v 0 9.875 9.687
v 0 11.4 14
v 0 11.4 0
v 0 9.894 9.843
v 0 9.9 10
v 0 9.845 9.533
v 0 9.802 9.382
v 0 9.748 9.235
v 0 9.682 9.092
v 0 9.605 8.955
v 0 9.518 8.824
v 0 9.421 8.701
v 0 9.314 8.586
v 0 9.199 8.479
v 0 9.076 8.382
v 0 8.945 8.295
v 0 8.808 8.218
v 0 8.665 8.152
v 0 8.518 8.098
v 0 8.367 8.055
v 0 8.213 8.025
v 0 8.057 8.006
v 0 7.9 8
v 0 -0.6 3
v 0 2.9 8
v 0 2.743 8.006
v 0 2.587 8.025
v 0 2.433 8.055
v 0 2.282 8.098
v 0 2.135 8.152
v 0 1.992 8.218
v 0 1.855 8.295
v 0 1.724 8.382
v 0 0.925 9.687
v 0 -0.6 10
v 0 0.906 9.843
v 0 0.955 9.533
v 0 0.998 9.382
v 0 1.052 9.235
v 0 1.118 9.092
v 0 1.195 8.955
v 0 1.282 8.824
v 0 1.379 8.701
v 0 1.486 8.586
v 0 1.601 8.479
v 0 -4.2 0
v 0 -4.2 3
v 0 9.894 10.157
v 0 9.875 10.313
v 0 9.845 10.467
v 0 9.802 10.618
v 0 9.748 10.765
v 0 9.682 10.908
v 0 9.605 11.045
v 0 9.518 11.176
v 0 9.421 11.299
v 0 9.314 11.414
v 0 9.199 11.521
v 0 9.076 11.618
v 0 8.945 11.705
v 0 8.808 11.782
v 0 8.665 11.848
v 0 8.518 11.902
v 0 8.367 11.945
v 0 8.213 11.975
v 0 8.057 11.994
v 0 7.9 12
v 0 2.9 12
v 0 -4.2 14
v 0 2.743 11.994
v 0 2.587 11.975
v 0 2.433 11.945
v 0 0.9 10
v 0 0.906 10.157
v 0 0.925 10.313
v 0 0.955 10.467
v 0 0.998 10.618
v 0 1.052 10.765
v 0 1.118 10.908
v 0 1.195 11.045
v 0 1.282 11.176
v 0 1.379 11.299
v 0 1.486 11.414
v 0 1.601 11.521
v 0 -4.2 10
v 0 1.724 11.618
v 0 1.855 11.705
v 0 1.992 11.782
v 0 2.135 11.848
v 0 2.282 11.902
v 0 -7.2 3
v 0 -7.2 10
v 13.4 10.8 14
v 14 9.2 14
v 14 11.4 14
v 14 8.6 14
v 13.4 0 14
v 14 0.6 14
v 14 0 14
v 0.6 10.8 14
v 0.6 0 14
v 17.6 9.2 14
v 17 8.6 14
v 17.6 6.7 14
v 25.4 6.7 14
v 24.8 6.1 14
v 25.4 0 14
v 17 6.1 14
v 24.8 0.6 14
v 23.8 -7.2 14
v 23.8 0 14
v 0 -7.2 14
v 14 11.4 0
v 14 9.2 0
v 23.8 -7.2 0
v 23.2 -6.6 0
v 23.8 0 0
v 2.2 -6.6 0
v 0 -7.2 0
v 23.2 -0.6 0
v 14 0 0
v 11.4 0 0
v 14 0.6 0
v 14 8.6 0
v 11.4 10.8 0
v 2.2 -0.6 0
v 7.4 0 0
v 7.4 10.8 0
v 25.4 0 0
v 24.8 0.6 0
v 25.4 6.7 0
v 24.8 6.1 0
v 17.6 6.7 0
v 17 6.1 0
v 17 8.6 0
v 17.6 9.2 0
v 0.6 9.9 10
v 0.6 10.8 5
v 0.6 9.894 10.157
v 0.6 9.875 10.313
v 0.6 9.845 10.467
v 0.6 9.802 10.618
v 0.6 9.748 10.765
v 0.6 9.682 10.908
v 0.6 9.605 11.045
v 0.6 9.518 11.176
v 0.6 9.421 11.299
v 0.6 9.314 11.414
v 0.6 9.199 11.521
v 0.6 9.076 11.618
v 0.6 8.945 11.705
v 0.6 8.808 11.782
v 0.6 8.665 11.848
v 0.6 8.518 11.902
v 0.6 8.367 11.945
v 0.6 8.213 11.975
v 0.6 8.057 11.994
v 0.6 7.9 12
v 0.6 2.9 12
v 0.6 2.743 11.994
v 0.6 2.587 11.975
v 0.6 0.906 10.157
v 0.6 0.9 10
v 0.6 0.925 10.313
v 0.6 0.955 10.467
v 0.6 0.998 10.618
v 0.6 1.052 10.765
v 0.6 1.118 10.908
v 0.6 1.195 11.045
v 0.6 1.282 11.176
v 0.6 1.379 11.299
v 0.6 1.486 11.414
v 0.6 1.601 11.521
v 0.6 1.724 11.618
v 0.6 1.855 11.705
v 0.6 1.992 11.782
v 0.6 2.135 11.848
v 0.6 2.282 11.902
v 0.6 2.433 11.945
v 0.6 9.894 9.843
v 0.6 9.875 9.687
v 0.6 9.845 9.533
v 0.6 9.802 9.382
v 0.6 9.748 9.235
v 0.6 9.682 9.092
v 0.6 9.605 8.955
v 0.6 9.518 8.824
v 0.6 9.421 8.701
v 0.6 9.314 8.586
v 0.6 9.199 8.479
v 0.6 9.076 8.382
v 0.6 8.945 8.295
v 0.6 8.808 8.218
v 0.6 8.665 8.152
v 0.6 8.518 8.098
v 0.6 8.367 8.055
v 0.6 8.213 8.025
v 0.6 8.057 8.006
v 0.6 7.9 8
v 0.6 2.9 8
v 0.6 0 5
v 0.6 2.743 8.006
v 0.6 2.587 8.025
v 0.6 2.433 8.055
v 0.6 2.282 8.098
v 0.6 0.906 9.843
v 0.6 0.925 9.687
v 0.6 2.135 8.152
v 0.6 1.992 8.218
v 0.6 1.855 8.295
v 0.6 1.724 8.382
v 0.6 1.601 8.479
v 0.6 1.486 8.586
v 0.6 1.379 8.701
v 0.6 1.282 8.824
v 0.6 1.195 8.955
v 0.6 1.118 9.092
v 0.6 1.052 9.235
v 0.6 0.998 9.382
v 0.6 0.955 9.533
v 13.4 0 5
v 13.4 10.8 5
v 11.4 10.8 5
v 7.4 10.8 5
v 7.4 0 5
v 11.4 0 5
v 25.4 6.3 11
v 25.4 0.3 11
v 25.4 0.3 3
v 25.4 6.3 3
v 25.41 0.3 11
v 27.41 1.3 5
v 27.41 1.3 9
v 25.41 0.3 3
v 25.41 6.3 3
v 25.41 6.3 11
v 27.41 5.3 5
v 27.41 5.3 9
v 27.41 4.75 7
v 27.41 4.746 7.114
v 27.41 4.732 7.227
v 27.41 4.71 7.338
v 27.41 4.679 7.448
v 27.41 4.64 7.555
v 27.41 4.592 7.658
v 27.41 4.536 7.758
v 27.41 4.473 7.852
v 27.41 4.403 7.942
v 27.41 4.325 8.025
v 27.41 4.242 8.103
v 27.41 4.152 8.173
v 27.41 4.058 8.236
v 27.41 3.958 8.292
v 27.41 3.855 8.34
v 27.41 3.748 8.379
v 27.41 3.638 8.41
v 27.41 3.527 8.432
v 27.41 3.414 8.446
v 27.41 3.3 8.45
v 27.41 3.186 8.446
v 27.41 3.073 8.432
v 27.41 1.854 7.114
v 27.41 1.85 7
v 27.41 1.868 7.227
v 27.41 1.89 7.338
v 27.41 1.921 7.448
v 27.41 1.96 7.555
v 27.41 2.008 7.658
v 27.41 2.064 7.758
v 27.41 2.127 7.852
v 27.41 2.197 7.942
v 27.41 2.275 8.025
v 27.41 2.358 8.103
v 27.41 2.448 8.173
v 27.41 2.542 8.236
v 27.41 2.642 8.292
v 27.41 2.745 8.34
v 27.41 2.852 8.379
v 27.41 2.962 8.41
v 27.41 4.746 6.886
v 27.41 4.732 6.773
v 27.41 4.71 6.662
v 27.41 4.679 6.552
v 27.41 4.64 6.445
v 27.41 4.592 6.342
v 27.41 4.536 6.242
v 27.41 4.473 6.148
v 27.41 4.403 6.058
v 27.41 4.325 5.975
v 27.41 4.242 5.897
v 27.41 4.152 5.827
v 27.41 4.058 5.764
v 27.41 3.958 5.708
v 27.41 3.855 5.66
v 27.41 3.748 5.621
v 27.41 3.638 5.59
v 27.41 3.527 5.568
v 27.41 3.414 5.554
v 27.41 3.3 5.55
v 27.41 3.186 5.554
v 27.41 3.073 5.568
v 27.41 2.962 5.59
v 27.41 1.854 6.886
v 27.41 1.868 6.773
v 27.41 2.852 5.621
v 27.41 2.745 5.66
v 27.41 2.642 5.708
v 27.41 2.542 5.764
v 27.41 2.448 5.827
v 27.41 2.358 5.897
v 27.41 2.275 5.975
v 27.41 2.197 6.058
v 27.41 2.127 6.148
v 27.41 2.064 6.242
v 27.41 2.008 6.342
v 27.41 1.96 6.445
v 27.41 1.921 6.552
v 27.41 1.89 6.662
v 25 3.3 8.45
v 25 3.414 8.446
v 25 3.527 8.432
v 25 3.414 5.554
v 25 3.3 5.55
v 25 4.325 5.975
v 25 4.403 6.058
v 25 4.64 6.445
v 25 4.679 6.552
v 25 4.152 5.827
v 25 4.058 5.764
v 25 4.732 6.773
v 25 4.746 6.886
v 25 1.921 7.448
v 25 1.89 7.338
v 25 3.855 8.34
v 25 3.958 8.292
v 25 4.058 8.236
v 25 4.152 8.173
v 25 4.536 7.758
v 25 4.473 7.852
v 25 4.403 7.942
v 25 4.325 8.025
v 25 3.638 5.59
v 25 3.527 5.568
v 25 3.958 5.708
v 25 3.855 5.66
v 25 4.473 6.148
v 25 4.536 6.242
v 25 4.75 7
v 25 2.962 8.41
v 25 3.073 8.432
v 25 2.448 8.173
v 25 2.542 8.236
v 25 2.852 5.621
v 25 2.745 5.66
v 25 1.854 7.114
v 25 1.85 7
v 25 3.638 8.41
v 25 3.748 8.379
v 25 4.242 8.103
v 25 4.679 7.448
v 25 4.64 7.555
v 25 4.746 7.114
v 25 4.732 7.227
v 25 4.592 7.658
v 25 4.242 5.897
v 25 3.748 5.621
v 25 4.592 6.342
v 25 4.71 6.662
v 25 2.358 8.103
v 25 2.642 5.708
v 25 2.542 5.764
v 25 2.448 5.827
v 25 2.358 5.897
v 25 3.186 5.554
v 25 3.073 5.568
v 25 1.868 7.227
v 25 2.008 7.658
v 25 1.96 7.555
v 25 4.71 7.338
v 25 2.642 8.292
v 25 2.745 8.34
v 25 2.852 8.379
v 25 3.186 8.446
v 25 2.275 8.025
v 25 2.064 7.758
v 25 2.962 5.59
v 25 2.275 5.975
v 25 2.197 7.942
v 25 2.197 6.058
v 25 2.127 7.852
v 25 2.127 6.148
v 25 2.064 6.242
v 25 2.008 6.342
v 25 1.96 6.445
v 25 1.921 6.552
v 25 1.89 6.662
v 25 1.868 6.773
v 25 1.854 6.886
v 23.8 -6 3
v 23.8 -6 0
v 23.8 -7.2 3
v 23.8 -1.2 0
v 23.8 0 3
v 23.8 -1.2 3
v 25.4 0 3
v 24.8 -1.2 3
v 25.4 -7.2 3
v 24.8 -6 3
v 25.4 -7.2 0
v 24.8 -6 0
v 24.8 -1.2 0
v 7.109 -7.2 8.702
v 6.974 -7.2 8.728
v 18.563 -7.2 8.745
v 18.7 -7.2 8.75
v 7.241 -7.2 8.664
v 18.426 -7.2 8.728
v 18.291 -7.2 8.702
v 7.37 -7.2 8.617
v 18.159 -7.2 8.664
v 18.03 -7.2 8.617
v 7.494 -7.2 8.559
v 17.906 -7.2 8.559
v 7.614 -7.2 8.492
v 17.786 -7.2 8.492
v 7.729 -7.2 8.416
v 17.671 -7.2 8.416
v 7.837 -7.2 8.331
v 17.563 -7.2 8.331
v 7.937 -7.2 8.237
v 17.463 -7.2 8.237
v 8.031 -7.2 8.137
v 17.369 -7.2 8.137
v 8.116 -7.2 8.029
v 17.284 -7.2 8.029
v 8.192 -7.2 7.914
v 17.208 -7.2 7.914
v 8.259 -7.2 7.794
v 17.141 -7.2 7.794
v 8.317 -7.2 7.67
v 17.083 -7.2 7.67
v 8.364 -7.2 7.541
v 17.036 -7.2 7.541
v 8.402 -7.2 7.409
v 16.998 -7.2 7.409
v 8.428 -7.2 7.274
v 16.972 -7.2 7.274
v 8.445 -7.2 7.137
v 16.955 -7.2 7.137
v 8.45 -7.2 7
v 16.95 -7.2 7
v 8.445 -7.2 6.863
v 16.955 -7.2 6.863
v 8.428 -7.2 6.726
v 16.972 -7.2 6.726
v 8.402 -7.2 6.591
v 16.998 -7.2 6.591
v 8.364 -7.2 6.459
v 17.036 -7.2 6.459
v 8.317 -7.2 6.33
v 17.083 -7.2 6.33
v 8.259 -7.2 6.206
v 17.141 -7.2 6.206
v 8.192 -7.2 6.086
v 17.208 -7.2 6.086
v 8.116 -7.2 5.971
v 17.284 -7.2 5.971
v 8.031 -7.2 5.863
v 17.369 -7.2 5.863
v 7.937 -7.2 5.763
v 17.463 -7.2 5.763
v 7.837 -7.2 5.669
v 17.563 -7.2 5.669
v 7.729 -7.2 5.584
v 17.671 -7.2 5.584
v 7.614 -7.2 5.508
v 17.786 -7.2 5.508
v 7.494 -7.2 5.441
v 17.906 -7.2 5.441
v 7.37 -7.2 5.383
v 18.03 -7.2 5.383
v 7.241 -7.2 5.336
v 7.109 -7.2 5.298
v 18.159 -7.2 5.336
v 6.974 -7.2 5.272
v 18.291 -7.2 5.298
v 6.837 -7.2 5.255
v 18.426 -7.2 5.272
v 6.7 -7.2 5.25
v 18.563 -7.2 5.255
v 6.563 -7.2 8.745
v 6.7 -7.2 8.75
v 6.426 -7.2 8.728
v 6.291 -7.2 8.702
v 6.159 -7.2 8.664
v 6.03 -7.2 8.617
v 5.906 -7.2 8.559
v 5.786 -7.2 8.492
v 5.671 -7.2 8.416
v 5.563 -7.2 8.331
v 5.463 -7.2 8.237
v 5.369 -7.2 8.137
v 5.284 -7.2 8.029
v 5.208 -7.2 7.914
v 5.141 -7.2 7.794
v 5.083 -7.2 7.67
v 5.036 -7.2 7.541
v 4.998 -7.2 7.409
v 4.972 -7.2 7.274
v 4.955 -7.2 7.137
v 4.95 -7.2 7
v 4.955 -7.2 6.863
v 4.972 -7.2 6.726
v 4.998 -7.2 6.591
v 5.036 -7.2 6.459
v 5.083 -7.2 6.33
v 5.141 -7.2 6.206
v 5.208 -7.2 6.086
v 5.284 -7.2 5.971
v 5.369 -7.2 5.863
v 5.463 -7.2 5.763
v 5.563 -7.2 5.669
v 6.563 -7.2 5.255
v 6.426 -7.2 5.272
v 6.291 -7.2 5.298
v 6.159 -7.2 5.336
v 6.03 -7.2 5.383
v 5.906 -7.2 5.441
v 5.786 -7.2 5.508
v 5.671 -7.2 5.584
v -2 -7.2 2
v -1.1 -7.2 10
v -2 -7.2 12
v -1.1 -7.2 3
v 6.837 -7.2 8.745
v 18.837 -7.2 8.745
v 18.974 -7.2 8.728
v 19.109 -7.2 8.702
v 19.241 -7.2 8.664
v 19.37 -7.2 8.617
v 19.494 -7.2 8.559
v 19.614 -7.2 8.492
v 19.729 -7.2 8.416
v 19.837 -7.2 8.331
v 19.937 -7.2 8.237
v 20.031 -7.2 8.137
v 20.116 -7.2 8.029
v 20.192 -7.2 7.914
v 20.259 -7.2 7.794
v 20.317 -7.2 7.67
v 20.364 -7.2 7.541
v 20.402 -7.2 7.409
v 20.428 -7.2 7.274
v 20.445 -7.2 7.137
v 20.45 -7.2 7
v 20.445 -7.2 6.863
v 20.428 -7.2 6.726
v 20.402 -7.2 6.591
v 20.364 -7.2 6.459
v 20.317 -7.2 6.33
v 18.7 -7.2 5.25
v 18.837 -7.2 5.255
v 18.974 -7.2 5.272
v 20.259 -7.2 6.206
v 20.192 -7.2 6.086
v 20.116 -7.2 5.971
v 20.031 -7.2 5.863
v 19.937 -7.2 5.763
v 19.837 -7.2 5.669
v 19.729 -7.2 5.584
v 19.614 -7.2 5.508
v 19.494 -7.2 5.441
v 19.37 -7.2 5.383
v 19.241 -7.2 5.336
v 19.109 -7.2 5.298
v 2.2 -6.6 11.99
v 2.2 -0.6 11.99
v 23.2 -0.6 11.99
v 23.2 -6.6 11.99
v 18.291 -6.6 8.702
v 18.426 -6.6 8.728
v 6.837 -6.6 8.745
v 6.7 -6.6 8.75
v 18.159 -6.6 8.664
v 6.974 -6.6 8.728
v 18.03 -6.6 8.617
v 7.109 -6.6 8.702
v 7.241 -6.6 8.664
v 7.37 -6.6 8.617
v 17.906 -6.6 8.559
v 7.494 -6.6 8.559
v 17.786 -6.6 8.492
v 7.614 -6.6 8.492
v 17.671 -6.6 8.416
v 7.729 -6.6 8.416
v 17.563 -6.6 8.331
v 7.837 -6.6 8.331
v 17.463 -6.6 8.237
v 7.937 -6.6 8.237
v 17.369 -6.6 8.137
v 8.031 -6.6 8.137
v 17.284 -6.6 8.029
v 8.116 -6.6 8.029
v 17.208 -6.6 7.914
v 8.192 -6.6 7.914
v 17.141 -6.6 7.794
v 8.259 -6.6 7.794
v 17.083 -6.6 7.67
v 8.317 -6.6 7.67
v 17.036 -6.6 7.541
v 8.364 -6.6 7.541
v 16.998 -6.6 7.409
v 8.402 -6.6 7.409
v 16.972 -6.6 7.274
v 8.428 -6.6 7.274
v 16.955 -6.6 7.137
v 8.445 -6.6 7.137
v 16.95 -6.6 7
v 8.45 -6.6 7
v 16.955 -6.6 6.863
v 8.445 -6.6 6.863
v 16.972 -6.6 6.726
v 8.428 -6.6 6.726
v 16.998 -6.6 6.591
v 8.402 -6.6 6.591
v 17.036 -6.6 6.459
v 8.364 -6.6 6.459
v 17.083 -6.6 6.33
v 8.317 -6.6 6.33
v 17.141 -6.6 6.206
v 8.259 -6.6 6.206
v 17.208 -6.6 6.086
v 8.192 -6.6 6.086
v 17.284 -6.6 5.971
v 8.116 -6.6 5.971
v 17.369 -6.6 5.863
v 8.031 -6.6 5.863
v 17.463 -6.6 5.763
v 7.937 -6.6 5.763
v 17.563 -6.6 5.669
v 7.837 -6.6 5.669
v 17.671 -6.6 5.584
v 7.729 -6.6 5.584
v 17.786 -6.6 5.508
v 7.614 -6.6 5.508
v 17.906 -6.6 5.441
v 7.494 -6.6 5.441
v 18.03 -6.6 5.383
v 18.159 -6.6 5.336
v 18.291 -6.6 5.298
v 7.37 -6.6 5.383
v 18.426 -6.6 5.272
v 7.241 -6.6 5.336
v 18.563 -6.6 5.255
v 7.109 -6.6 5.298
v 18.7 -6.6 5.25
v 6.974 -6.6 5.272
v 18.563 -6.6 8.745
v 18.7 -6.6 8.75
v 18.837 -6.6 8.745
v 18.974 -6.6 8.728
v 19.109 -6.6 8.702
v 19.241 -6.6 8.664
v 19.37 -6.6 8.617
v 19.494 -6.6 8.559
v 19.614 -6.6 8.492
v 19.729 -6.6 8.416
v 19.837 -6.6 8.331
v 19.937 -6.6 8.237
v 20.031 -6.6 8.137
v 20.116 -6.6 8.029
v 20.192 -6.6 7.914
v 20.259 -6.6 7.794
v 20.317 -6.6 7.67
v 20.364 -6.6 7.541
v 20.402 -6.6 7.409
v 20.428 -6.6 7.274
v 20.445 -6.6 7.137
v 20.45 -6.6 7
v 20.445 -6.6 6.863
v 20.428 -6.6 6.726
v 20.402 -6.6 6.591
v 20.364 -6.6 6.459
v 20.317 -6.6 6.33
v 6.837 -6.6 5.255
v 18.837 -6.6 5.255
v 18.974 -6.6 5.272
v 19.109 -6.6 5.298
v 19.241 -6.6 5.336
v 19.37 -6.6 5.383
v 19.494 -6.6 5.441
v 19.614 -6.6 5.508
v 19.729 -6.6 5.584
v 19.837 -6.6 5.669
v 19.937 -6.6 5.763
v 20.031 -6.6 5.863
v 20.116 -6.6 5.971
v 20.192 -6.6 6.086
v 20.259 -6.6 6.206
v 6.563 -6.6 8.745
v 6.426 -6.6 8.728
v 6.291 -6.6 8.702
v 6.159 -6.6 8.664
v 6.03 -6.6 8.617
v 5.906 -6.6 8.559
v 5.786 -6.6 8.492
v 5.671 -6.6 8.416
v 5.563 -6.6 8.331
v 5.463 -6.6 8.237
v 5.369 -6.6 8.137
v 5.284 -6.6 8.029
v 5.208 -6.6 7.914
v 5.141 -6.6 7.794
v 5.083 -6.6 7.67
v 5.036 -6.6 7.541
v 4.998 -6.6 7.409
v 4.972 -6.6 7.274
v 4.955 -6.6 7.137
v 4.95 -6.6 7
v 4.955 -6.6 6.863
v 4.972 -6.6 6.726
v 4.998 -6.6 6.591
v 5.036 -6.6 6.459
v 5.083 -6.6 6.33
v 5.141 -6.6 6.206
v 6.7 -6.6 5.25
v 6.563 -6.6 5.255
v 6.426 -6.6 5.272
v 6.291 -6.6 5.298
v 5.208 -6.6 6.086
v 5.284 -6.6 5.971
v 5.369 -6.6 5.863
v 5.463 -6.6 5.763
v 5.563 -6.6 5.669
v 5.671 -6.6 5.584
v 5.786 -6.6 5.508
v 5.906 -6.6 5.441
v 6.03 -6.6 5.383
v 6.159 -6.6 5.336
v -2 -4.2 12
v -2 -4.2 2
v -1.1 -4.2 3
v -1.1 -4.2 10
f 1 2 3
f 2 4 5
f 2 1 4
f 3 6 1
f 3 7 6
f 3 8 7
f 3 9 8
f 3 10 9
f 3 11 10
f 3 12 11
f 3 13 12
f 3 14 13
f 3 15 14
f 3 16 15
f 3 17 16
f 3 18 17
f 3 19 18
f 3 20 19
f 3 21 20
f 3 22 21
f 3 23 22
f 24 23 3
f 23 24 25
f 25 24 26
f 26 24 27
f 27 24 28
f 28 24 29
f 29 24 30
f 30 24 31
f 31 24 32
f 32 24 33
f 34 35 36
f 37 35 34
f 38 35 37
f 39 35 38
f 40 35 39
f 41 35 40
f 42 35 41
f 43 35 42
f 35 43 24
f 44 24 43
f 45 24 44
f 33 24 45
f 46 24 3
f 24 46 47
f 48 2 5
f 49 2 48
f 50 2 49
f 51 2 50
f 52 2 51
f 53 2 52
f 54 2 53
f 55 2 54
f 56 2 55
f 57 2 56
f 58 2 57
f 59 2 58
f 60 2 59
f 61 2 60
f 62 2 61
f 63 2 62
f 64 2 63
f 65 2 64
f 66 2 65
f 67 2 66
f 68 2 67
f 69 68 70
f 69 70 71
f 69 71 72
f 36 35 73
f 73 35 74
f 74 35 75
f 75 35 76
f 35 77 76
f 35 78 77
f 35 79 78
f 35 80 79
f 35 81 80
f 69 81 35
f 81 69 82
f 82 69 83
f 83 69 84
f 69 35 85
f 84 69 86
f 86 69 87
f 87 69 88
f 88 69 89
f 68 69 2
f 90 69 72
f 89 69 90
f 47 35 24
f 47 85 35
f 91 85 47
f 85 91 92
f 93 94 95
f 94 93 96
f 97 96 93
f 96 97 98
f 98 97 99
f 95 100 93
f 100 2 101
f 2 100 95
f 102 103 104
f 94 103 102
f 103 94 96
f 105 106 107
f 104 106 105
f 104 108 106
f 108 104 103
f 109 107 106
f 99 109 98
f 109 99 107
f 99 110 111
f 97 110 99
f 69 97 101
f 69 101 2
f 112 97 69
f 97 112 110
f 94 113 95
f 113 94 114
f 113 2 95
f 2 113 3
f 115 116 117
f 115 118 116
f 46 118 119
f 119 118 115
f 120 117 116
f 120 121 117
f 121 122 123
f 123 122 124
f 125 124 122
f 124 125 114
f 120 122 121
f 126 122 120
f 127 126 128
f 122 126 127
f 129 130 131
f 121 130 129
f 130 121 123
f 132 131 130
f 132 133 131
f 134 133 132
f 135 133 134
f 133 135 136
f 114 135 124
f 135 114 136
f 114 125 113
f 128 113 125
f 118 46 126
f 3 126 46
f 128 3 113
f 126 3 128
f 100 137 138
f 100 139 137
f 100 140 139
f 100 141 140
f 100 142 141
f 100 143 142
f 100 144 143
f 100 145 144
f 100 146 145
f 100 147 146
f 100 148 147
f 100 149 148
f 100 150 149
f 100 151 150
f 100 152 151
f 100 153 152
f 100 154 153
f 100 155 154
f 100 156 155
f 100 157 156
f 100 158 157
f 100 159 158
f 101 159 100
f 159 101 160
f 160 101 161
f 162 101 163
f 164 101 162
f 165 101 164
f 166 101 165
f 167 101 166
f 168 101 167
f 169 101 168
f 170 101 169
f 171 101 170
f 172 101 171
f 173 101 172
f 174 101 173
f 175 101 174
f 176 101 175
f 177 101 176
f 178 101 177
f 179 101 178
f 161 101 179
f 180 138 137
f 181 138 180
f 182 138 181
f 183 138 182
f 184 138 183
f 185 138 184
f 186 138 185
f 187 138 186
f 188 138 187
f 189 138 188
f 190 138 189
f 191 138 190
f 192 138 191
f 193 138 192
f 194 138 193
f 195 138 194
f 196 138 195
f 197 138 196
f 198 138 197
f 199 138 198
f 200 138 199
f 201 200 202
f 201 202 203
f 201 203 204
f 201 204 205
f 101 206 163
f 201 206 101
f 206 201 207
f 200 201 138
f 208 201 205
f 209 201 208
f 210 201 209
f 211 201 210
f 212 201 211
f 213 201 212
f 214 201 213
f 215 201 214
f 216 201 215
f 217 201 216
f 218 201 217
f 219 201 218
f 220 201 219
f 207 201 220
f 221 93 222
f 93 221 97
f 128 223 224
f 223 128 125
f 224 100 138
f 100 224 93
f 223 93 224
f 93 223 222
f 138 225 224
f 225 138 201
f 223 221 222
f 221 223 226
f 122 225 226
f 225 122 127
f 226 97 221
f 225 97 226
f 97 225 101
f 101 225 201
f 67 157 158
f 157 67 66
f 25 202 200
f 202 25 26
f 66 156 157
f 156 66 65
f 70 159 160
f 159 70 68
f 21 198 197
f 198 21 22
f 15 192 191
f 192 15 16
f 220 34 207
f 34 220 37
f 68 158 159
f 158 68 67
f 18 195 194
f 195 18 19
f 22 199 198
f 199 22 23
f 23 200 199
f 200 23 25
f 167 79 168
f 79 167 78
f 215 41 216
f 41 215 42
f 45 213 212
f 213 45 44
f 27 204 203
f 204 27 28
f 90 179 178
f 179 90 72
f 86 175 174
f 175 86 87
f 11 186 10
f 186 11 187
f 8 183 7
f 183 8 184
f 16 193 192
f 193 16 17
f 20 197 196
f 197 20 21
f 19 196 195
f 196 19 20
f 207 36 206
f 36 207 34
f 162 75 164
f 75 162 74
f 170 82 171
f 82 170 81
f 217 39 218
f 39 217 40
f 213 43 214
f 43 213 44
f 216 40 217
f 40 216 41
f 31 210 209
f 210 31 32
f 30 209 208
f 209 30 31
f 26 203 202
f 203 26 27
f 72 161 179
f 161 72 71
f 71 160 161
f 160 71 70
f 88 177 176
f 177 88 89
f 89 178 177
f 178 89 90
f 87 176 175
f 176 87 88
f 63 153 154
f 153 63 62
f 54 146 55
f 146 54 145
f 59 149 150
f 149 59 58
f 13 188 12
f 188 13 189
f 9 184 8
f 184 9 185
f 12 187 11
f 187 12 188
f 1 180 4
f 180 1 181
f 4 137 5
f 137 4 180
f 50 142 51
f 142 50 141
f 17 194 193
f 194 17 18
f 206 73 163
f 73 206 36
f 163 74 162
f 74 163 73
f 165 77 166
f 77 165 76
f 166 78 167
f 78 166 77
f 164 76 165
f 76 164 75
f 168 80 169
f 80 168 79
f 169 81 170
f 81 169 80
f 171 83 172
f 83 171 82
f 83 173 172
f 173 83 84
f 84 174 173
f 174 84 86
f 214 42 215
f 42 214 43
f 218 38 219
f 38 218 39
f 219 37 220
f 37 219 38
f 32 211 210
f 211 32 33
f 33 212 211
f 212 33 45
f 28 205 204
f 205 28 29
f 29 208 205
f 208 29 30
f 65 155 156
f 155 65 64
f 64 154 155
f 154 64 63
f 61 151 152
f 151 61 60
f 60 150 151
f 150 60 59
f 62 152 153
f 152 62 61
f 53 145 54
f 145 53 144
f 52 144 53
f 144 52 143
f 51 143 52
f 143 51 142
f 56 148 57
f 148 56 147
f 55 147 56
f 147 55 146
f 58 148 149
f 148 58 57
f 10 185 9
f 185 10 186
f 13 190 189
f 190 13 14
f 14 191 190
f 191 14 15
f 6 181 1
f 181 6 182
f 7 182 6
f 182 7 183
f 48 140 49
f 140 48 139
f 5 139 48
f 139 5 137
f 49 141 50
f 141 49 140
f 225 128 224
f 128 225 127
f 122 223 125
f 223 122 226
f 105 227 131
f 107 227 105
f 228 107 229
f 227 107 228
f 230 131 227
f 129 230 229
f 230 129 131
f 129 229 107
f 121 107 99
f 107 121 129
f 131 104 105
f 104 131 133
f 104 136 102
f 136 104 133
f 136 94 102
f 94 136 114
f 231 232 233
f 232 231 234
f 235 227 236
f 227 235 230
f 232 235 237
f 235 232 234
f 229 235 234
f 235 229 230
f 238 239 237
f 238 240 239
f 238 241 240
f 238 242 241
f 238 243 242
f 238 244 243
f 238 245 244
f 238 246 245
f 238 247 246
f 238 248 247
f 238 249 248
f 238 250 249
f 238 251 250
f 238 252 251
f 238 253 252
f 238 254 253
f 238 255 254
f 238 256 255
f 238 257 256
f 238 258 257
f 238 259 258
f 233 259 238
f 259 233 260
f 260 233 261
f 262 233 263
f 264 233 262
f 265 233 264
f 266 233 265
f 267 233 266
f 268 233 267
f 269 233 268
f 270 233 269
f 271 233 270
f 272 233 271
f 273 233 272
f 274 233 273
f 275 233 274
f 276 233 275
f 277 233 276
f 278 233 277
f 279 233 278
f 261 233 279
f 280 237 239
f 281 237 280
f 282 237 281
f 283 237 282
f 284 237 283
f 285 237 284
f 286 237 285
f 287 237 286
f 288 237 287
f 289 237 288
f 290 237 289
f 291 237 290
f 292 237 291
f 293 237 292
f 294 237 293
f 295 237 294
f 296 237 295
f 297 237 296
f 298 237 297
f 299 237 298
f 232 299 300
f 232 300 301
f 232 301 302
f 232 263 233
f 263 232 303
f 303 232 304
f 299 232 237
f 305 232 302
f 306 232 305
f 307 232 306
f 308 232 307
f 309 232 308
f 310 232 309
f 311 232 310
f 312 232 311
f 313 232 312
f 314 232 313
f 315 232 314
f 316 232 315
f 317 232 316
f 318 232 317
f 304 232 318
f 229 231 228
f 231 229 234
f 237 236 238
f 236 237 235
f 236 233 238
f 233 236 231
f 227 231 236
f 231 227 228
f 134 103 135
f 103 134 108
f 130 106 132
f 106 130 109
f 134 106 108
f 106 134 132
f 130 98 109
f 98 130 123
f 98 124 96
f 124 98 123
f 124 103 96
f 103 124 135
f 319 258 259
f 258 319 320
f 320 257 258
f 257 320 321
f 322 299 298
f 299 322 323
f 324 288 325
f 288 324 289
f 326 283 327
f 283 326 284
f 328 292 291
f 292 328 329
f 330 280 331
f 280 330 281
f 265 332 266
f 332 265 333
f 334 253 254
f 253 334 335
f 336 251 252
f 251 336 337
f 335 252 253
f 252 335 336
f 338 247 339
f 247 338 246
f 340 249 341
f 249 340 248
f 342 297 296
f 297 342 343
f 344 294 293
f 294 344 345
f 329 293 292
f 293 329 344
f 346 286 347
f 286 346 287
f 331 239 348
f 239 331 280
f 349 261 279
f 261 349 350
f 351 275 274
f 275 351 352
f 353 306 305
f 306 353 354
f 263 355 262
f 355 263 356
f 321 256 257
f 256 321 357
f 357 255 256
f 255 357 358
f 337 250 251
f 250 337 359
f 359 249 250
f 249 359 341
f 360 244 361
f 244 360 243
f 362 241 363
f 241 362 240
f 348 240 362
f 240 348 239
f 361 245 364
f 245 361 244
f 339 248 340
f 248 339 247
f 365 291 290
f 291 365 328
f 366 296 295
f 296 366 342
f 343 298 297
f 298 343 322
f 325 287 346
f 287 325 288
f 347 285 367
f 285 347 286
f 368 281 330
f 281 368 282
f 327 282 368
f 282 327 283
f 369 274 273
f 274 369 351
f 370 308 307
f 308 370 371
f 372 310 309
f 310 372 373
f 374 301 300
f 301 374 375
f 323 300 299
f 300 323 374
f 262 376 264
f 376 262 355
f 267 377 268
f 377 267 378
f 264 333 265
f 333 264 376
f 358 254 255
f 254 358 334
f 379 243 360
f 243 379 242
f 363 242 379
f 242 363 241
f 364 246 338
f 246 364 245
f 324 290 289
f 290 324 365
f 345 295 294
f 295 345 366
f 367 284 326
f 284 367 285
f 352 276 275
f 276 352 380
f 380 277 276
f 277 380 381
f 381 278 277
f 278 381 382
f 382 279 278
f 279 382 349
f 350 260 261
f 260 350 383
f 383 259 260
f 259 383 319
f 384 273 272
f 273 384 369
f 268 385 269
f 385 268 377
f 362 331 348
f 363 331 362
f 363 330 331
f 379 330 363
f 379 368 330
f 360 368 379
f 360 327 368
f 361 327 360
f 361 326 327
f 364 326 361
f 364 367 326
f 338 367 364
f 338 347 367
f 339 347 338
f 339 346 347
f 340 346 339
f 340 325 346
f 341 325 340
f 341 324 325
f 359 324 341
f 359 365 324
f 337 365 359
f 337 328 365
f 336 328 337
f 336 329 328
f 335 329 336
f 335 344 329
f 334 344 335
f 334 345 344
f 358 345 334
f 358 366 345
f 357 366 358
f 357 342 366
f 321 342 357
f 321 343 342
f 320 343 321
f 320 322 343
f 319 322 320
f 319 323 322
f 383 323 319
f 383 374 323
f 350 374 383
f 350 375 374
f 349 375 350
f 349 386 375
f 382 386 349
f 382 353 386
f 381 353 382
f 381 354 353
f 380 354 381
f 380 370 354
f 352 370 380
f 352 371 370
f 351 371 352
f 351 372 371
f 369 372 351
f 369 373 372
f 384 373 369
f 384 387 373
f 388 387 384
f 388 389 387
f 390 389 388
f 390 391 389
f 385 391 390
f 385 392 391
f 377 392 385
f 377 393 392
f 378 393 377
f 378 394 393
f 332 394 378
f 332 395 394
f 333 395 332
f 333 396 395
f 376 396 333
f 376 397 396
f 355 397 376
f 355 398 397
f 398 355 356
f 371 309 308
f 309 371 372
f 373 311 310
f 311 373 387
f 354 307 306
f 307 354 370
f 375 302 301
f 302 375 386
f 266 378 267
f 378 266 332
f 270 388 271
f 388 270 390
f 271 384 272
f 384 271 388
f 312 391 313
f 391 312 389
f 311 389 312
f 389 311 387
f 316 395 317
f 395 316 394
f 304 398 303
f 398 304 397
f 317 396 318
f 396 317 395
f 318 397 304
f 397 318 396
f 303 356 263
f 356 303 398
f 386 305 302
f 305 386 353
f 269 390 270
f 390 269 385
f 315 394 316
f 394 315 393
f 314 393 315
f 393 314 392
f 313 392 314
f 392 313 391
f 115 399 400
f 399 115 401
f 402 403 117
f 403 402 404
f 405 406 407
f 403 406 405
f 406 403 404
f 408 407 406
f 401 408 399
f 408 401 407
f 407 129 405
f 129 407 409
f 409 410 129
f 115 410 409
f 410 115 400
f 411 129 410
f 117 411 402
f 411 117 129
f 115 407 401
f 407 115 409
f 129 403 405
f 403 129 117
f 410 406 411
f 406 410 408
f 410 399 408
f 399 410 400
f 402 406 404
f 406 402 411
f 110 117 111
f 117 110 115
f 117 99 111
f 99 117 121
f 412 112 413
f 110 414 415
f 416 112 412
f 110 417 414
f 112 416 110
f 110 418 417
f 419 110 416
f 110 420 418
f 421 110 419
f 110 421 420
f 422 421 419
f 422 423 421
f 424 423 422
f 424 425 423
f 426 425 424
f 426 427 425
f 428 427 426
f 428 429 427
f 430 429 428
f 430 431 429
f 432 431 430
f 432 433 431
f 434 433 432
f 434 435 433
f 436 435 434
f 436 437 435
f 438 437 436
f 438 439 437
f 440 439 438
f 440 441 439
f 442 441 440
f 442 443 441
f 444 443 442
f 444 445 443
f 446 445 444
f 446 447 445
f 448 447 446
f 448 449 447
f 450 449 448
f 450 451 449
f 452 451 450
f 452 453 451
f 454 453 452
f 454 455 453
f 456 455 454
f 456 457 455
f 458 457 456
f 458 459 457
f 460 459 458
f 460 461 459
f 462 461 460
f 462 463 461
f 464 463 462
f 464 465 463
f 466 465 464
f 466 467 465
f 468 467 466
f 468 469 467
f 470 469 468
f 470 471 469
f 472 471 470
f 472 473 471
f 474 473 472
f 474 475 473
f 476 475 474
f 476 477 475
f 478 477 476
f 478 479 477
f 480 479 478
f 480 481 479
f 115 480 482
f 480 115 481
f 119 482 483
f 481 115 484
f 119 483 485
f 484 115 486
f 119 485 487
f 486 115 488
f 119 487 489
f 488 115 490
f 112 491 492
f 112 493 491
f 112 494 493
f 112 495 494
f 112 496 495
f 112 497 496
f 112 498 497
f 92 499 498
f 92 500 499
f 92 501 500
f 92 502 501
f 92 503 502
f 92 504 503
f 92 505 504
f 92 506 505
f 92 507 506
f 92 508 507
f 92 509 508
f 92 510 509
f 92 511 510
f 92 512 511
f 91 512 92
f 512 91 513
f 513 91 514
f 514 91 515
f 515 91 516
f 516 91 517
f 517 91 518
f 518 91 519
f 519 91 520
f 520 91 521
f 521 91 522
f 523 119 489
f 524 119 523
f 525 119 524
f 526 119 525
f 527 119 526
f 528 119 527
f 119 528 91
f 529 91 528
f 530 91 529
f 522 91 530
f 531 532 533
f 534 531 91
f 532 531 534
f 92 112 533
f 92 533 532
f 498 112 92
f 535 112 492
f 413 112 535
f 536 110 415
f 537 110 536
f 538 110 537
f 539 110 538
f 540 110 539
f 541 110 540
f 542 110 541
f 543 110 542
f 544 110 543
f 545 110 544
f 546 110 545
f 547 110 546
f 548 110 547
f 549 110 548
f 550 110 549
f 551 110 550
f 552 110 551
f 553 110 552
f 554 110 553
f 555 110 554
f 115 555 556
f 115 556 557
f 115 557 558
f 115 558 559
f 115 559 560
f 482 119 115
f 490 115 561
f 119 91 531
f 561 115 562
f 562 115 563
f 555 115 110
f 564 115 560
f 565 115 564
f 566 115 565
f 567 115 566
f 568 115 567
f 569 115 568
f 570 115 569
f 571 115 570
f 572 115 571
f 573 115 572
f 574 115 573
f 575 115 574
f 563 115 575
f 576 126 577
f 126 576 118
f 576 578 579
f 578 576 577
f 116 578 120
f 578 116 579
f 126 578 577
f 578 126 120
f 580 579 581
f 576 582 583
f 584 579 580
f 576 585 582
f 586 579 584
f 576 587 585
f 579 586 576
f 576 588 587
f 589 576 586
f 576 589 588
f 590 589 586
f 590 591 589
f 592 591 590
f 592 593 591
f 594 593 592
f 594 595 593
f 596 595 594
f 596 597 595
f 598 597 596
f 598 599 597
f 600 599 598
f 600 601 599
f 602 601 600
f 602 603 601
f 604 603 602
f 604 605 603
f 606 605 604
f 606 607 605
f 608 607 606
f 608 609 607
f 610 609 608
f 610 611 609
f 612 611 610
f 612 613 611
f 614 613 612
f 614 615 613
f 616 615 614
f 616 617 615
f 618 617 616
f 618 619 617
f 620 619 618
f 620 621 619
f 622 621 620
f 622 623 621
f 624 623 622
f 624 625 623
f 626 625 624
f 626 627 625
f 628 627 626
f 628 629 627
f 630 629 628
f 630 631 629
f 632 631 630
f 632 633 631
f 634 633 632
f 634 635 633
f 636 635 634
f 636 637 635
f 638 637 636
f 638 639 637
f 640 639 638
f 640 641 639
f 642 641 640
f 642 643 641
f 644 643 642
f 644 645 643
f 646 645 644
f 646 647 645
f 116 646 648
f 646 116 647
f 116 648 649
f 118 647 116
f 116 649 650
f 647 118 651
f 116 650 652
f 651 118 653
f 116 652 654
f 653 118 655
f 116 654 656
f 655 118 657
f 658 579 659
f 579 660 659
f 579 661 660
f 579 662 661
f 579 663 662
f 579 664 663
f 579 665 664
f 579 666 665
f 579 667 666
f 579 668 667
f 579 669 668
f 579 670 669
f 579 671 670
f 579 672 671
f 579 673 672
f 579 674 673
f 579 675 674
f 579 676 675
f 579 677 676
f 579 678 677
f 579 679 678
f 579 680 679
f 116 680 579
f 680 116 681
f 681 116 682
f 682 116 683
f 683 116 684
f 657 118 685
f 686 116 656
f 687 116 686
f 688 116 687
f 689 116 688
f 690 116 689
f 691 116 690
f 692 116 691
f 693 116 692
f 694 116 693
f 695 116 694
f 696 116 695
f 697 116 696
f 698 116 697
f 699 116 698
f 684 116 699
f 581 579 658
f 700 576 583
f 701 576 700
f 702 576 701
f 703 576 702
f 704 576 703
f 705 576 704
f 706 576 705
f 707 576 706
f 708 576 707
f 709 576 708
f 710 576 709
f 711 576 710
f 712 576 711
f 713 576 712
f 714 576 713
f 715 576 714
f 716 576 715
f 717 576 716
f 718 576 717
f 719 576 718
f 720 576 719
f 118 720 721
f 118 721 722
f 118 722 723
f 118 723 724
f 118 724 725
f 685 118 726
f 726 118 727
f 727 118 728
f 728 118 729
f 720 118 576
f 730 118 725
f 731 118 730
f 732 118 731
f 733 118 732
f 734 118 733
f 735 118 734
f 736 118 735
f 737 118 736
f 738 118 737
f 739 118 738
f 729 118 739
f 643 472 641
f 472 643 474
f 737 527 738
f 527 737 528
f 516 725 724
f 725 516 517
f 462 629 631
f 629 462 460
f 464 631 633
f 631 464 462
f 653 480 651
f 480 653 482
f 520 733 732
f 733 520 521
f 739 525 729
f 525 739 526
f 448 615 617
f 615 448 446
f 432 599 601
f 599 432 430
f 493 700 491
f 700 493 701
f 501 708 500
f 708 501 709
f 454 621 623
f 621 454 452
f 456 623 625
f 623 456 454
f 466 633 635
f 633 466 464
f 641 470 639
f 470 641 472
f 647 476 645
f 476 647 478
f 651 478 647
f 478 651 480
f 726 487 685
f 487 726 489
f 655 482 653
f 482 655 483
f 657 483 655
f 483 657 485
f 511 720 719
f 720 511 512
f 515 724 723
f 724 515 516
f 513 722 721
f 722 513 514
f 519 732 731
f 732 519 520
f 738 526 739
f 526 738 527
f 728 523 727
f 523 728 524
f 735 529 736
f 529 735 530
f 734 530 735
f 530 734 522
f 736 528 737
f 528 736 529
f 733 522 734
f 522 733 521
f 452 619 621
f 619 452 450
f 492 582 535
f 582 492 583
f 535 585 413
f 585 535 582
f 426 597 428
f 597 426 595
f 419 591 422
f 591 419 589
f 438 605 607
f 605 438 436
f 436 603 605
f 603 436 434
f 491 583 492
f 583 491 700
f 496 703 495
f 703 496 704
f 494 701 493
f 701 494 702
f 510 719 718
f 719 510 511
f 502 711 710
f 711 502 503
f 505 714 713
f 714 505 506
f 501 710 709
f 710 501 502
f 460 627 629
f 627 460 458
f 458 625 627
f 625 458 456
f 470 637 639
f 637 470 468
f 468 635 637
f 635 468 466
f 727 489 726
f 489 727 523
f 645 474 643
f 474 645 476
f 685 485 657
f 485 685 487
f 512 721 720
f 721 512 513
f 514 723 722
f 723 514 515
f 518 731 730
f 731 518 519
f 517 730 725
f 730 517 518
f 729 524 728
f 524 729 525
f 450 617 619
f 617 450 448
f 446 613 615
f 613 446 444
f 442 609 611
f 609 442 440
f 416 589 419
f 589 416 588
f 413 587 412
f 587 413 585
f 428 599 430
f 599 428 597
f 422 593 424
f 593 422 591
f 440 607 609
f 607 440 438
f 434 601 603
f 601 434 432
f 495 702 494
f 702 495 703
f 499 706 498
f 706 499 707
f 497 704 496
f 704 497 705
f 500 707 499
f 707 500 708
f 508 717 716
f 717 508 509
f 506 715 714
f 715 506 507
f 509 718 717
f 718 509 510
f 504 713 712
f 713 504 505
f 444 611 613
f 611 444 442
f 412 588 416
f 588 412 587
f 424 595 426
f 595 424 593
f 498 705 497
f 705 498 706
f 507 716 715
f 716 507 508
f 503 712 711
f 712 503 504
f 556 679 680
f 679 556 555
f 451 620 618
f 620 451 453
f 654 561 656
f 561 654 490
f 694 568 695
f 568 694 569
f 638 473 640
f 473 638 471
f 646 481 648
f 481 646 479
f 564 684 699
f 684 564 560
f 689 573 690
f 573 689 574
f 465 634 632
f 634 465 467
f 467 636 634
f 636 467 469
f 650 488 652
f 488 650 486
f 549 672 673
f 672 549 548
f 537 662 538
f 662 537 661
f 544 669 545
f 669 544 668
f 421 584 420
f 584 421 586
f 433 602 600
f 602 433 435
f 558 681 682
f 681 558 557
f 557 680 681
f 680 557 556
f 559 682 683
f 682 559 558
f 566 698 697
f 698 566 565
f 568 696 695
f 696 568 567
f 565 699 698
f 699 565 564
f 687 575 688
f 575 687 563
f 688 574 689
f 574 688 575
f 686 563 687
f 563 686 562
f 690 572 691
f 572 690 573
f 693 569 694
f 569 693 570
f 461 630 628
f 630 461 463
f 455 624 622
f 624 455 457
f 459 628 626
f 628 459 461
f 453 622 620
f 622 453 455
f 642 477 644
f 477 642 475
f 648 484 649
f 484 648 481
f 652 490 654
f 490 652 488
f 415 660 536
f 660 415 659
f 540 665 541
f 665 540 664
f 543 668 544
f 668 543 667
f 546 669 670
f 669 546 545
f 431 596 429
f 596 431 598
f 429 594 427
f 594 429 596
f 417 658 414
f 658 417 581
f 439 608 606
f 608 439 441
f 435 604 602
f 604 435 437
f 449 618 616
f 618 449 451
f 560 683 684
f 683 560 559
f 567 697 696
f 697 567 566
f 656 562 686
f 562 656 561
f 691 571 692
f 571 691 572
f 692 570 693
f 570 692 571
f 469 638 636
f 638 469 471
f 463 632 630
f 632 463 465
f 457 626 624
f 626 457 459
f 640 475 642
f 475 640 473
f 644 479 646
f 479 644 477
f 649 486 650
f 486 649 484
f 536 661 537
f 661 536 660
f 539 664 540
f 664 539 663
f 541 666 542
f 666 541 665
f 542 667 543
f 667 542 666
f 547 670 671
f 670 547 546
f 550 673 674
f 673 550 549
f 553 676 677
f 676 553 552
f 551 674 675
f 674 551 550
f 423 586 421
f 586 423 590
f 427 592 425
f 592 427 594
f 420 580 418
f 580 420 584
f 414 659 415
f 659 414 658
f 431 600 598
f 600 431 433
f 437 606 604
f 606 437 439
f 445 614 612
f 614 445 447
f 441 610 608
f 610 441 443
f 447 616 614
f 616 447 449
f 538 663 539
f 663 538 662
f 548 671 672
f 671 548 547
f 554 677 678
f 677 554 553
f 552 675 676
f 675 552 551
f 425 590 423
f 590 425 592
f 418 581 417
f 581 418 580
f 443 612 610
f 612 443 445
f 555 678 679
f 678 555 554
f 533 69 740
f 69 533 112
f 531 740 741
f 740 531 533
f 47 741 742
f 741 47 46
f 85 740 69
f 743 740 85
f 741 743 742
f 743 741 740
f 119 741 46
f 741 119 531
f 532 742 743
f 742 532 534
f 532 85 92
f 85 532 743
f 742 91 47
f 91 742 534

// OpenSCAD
$fn=80;
extra=0.01;

connectorWallthickness = 0.6;

xLenCon3x2 = 7.8;
yLenCon6x2 = 5.5;

xLenCon1x3 = 3;
yLenCon1x3 = 8;

zConHeight = 14;


xTH_Hook = 21;
yTH_Hook = 6;
zTH_Hook = 12;

screwDia = 3.5;

setScrewDia = 2.9;
zMoveConnFix = 3;


xLenTerminal = 12.8;
yLenTerminal = 10.8;
zLenTerminal = 9;

xPinCutoutTerminal = 4;

connDiff = (xTH_Hook) - (xLenCon3x2+xLenCon1x3);


conTerminal();
module conTerminal()
{
  difference()
  {
    translate([0,-connectorWallthickness,0])
    cube([xLenTerminal+connectorWallthickness*2,yLenTerminal+connectorWallthickness*2,zConHeight]);

    translate([connectorWallthickness,0,zConHeight-zLenTerminal])
    cube([xLenTerminal,yLenTerminal,zLenTerminal+extra]);

    translate([connectorWallthickness+extra,0,zConHeight-4])
    rotate([0,-90,0])
    hull()
    {
      translate([0,yLenTerminal/2+2.5,0])
      cylinder(r=2,h=connectorWallthickness+extra*2);
      translate([0,yLenTerminal/2-2.5,0])
      cylinder(r=2,h=connectorWallthickness+extra*2);
    }


    translate([connectorWallthickness+xLenTerminal-xPinCutoutTerminal-2,0,-extra])
    cube([xPinCutoutTerminal,yLenTerminal,zConHeight-zLenTerminal+extra*2]);
  }
}




translate([xLenTerminal+connectorWallthickness,0,0])
pinHeaderPeri();
module pinHeaderPeri()
{
  /* translate([connDiff,0,0]) */
  translate([connectorWallthickness,(connectorWallthickness),0])
  difference()
  {
    union()
    {
      translate([xLenCon1x3-connectorWallthickness,-connectorWallthickness,0])
      cube([xLenCon3x2+connectorWallthickness*2,yLenCon6x2+connectorWallthickness*2,zConHeight]);
      translate([-connectorWallthickness,-connectorWallthickness,0])
      cube([xLenCon1x3+connectorWallthickness*2,yLenCon1x3+connectorWallthickness*2,zConHeight]);

      translate([xLenCon1x3+xLenCon3x2+connectorWallthickness,-connectorWallthickness/2,zMoveConnFix])
      mirror([1,0,0])
      rotate([0,-90,0])
      setScrewHolder();
    }
    translate([0,0,-extra])
    connector();

    translate([xTH_Hook,3-connectorWallthickness/2,4+zMoveConnFix])
    rotate([0,-90,0])
    cylinder(r=setScrewDia/2, h=10);
  }
}

xMoveConnHolder =
  xLenTerminal + xLenCon3x2 + xLenCon1x3 + connectorWallthickness*3
  - (xTH_Hook+connectorWallthickness*2);

translate([xMoveConnHolder/2,-(yTH_Hook+connectorWallthickness*2),0])
connHolder();
module connHolder()
{
  /* translate([0,-(yTH_Hook+connectorWallthickness*2),0]) */
  union()
  {
    difference() {
      cube([xTH_Hook+connectorWallthickness*2,yTH_Hook+connectorWallthickness*2,zConHeight]);

      translate([connectorWallthickness,connectorWallthickness,-extra])
      cube([xTH_Hook,yTH_Hook,zTH_Hook]);


      translate([connectorWallthickness+4.5,-extra,zTH_Hook-5])
      rotate([-90,0,0])
      cylinder(r=screwDia/2, h=yTH_Hook);

      translate([xTH_Hook+connectorWallthickness-4.5,-extra,zTH_Hook-5])
      rotate([-90,0,0])
      cylinder(r=screwDia/2, h=yTH_Hook);
    }
  }
}

translate([0,-(yTH_Hook+connectorWallthickness*2),0])
zipTieLugHorizontal();
module zipTieLugHorizontal()
{
  difference()
  {
    union()
    {
      cube([2,yTH_Hook+connectorWallthickness*2,zConHeight]);
      hull()
      {
        translate([0,0,0])
        cube([extra,yTH_Hook/2,zConHeight]);
        translate([-2,0,2])
        cube([extra,yTH_Hook/2,zConHeight-4]);
      }
    }
    translate([-1.1,-extra,3])
    cube([1.1,yTH_Hook+connectorWallthickness*2+extra*2,zConHeight/2]);
  }
}

translate([xMoveConnHolder/2+xTH_Hook+connectorWallthickness*2,-(yTH_Hook+connectorWallthickness*2),0])
zipTieLugVertical();
module zipTieLugVertical()
{
  difference()
  {
    cube([xMoveConnHolder/2,yTH_Hook+connectorWallthickness*2,3]);
    translate([0,connectorWallthickness*2,-extra])
    cube([1,yTH_Hook-connectorWallthickness*2,3+extra*2]);
  }
}


module connector()
{
  union()
  {
    translate([xLenCon1x3,0,0])
    cube([xLenCon3x2,yLenCon6x2,zConHeight+extra*2]);
    translate([0,0,0])
    cube([xLenCon1x3,yLenCon1x3,zConHeight+extra*2]);
  }
}

module setScrewHolder()
{
    hull()
    {
      cube([8,6,0.01]);
      translate([2,1,2])
      cube([4,4,0.01]);
    }
}
